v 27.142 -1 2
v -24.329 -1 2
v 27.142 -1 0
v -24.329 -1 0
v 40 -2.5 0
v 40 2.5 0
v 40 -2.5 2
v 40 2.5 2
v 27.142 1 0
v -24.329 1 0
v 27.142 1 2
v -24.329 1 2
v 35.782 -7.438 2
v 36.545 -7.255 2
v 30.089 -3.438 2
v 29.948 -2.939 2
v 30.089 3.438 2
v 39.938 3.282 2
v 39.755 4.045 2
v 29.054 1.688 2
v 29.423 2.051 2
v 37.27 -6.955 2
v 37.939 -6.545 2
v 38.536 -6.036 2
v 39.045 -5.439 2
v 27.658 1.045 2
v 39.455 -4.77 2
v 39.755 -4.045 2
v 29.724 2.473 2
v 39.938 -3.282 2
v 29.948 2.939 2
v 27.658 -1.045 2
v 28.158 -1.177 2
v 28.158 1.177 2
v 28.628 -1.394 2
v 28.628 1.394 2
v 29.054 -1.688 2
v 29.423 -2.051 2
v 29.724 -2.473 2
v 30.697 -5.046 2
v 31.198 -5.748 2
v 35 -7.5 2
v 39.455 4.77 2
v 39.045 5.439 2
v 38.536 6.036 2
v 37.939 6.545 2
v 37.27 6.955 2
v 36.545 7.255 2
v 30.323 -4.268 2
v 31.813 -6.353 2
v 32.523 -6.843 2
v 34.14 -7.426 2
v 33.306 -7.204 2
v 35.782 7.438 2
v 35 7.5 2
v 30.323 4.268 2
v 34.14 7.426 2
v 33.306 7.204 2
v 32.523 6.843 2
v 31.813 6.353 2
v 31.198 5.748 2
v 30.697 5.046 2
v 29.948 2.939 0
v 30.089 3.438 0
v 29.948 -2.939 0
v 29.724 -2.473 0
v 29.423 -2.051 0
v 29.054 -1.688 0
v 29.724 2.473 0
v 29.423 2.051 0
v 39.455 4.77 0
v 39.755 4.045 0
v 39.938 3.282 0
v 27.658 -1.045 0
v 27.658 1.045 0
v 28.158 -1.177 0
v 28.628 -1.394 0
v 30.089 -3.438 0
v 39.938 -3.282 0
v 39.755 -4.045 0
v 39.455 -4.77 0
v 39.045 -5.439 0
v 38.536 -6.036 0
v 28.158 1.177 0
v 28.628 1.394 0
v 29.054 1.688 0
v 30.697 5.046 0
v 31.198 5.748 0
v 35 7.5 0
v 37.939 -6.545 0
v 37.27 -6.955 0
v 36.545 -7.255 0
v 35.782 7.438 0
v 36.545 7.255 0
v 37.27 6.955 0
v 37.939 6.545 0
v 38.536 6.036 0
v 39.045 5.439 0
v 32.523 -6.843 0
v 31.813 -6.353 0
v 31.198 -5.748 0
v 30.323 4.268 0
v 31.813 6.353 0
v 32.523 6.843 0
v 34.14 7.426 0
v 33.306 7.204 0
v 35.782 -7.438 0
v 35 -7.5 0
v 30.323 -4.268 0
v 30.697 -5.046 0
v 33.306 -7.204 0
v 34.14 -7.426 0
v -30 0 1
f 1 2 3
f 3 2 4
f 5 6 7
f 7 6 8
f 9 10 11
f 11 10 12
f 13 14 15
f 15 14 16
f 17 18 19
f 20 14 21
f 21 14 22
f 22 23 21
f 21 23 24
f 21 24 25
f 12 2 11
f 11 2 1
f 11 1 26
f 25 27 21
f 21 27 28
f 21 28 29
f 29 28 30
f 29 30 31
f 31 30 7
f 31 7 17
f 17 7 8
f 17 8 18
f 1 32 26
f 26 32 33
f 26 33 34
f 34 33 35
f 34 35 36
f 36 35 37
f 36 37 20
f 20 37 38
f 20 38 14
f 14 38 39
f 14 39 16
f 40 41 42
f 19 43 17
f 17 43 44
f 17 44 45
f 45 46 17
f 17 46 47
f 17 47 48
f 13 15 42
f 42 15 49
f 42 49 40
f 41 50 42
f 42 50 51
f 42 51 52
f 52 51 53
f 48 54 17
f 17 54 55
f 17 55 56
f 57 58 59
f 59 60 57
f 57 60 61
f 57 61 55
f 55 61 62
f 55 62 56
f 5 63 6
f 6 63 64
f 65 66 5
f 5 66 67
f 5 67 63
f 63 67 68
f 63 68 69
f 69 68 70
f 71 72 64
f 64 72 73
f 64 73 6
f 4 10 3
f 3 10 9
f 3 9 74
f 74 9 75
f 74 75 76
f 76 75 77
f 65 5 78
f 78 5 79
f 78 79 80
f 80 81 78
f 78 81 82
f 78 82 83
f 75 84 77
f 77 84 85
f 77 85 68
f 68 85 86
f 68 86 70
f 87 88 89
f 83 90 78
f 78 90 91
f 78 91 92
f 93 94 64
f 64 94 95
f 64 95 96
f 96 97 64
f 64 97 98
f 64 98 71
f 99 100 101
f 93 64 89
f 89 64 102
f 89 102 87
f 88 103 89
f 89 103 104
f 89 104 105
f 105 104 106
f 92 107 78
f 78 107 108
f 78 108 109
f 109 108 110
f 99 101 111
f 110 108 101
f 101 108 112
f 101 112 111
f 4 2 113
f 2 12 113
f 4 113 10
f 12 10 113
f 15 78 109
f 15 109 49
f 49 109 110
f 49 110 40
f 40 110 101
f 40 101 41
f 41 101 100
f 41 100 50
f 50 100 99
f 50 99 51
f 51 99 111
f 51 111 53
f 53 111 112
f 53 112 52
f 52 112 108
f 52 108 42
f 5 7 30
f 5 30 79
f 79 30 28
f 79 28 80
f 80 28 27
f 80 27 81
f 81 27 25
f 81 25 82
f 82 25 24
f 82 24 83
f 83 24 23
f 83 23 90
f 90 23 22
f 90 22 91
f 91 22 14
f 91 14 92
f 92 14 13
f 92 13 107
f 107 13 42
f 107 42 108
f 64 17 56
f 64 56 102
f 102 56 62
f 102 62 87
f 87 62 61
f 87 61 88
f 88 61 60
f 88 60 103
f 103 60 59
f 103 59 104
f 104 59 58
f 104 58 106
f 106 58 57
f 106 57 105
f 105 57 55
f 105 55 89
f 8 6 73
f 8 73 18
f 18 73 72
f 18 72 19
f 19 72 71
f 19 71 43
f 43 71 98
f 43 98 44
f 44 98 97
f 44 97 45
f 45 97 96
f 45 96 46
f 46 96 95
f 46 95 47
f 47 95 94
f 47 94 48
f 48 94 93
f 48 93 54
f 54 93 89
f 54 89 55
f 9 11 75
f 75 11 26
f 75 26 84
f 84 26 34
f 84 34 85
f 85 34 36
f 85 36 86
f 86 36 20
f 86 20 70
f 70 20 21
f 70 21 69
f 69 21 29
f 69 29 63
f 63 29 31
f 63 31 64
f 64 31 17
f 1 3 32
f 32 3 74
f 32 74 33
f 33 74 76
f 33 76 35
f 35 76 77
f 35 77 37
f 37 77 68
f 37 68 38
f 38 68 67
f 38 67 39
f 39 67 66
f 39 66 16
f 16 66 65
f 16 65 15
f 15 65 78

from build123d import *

# Parameters (mm, degrees)
SKETCH1_W           = 60
SKETCH1_H           = 2
BOSS_EXTRUDE1_DEPTH = 2
CHAMFER1_SIZE       = 5.67128182
CHAMFER1_SIZE_2     = 1
FILLET1_R           = 5
FILLET2_R           = 3


# Some blends are built 0.0001 mm under size
with BuildPart() as part:
    # Sketch1 → Boss-Extrude1 (new body)
    with BuildSketch(Plane.XY):
        Rectangle(SKETCH1_W, SKETCH1_H)
        Polygon((30, 1), (30, -1), (30, -7.5), (40, -7.5), (40, 7.5), (30, 7.5), align=None)
    extrude(amount=BOSS_EXTRUDE1_DEPTH)

    # Chamfer1
    # the kernel refuses this chamfer: 5.67128182, 1 mm, written as the material it takes off along each edge
    with BuildSketch(Plane(origin=(-30, -15.737045834, 0), x_dir=(0.9999776716360547, 0, -0.006682531656101592), z_dir=(0, 1, 0)), Plane(origin=(-30, 1, -14.737045834), x_dir=(0.9999776716360547, 0.00668253165610172, 0), z_dir=(0, 0, 1))) as chamfer1_piece_1:
        Polygon((CHAMFER1_SIZE * 0.999977671569, -CHAMFER1_SIZE * 0.00668253165565), (-CHAMFER1_SIZE_2 * 0.00668253165611, -CHAMFER1_SIZE_2 * 0.999977671636), (0, 0), align=None)
    extrude(amount=31.474091667, mode=Mode.SUBTRACT)
    with BuildSketch(Plane(origin=(-30, -1, -14.737045834), x_dir=(-0.21013876076743543, 0.9776715712462578, 0), z_dir=(0, 0, 1))) as chamfer1_piece_2:
        Polygon((CHAMFER1_SIZE_2 * 0.977671571246, -CHAMFER1_SIZE_2 * 0.210138760767), (-CHAMFER1_SIZE * 0.210138760753, -CHAMFER1_SIZE * 0.97767157118), (0, 0), align=None)
    extrude(amount=31.474091667, mode=Mode.SUBTRACT)
    with BuildSketch(Plane(origin=(-30, -15.737045834, 2), x_dir=(0.9999776716360547, 0, 0.006682531656101588), z_dir=(0, 1, 0))) as chamfer1_piece_3:
        Polygon((CHAMFER1_SIZE * 0.999977671569, CHAMFER1_SIZE * 0.00668253165565), (-CHAMFER1_SIZE_2 * 0.00668253165611, CHAMFER1_SIZE_2 * 0.999977671636), (0, 0), align=None)
    extrude(amount=31.474091667, mode=Mode.SUBTRACT)

    # Fillet1
    fillet1_edges = [part.edges().sort_by_distance(p)[0] for p in [
        (40, -7.5, 1),
        (40, 7.5, 1),
        (30, 7.5, 1),
        (30, -7.5, 1),
    ]]
    fillet(fillet1_edges, radius=FILLET1_R - 0.0001)  # a hair under: the kernel refuses the full size

    # Fillet2
    fillet2_edges = [part.edges().sort_by_distance(p)[0] for p in [
        (30, 1, 1),
        (30, -1, 1),
    ]]
    fillet(fillet2_edges, radius=FILLET2_R)


solid = part.part
